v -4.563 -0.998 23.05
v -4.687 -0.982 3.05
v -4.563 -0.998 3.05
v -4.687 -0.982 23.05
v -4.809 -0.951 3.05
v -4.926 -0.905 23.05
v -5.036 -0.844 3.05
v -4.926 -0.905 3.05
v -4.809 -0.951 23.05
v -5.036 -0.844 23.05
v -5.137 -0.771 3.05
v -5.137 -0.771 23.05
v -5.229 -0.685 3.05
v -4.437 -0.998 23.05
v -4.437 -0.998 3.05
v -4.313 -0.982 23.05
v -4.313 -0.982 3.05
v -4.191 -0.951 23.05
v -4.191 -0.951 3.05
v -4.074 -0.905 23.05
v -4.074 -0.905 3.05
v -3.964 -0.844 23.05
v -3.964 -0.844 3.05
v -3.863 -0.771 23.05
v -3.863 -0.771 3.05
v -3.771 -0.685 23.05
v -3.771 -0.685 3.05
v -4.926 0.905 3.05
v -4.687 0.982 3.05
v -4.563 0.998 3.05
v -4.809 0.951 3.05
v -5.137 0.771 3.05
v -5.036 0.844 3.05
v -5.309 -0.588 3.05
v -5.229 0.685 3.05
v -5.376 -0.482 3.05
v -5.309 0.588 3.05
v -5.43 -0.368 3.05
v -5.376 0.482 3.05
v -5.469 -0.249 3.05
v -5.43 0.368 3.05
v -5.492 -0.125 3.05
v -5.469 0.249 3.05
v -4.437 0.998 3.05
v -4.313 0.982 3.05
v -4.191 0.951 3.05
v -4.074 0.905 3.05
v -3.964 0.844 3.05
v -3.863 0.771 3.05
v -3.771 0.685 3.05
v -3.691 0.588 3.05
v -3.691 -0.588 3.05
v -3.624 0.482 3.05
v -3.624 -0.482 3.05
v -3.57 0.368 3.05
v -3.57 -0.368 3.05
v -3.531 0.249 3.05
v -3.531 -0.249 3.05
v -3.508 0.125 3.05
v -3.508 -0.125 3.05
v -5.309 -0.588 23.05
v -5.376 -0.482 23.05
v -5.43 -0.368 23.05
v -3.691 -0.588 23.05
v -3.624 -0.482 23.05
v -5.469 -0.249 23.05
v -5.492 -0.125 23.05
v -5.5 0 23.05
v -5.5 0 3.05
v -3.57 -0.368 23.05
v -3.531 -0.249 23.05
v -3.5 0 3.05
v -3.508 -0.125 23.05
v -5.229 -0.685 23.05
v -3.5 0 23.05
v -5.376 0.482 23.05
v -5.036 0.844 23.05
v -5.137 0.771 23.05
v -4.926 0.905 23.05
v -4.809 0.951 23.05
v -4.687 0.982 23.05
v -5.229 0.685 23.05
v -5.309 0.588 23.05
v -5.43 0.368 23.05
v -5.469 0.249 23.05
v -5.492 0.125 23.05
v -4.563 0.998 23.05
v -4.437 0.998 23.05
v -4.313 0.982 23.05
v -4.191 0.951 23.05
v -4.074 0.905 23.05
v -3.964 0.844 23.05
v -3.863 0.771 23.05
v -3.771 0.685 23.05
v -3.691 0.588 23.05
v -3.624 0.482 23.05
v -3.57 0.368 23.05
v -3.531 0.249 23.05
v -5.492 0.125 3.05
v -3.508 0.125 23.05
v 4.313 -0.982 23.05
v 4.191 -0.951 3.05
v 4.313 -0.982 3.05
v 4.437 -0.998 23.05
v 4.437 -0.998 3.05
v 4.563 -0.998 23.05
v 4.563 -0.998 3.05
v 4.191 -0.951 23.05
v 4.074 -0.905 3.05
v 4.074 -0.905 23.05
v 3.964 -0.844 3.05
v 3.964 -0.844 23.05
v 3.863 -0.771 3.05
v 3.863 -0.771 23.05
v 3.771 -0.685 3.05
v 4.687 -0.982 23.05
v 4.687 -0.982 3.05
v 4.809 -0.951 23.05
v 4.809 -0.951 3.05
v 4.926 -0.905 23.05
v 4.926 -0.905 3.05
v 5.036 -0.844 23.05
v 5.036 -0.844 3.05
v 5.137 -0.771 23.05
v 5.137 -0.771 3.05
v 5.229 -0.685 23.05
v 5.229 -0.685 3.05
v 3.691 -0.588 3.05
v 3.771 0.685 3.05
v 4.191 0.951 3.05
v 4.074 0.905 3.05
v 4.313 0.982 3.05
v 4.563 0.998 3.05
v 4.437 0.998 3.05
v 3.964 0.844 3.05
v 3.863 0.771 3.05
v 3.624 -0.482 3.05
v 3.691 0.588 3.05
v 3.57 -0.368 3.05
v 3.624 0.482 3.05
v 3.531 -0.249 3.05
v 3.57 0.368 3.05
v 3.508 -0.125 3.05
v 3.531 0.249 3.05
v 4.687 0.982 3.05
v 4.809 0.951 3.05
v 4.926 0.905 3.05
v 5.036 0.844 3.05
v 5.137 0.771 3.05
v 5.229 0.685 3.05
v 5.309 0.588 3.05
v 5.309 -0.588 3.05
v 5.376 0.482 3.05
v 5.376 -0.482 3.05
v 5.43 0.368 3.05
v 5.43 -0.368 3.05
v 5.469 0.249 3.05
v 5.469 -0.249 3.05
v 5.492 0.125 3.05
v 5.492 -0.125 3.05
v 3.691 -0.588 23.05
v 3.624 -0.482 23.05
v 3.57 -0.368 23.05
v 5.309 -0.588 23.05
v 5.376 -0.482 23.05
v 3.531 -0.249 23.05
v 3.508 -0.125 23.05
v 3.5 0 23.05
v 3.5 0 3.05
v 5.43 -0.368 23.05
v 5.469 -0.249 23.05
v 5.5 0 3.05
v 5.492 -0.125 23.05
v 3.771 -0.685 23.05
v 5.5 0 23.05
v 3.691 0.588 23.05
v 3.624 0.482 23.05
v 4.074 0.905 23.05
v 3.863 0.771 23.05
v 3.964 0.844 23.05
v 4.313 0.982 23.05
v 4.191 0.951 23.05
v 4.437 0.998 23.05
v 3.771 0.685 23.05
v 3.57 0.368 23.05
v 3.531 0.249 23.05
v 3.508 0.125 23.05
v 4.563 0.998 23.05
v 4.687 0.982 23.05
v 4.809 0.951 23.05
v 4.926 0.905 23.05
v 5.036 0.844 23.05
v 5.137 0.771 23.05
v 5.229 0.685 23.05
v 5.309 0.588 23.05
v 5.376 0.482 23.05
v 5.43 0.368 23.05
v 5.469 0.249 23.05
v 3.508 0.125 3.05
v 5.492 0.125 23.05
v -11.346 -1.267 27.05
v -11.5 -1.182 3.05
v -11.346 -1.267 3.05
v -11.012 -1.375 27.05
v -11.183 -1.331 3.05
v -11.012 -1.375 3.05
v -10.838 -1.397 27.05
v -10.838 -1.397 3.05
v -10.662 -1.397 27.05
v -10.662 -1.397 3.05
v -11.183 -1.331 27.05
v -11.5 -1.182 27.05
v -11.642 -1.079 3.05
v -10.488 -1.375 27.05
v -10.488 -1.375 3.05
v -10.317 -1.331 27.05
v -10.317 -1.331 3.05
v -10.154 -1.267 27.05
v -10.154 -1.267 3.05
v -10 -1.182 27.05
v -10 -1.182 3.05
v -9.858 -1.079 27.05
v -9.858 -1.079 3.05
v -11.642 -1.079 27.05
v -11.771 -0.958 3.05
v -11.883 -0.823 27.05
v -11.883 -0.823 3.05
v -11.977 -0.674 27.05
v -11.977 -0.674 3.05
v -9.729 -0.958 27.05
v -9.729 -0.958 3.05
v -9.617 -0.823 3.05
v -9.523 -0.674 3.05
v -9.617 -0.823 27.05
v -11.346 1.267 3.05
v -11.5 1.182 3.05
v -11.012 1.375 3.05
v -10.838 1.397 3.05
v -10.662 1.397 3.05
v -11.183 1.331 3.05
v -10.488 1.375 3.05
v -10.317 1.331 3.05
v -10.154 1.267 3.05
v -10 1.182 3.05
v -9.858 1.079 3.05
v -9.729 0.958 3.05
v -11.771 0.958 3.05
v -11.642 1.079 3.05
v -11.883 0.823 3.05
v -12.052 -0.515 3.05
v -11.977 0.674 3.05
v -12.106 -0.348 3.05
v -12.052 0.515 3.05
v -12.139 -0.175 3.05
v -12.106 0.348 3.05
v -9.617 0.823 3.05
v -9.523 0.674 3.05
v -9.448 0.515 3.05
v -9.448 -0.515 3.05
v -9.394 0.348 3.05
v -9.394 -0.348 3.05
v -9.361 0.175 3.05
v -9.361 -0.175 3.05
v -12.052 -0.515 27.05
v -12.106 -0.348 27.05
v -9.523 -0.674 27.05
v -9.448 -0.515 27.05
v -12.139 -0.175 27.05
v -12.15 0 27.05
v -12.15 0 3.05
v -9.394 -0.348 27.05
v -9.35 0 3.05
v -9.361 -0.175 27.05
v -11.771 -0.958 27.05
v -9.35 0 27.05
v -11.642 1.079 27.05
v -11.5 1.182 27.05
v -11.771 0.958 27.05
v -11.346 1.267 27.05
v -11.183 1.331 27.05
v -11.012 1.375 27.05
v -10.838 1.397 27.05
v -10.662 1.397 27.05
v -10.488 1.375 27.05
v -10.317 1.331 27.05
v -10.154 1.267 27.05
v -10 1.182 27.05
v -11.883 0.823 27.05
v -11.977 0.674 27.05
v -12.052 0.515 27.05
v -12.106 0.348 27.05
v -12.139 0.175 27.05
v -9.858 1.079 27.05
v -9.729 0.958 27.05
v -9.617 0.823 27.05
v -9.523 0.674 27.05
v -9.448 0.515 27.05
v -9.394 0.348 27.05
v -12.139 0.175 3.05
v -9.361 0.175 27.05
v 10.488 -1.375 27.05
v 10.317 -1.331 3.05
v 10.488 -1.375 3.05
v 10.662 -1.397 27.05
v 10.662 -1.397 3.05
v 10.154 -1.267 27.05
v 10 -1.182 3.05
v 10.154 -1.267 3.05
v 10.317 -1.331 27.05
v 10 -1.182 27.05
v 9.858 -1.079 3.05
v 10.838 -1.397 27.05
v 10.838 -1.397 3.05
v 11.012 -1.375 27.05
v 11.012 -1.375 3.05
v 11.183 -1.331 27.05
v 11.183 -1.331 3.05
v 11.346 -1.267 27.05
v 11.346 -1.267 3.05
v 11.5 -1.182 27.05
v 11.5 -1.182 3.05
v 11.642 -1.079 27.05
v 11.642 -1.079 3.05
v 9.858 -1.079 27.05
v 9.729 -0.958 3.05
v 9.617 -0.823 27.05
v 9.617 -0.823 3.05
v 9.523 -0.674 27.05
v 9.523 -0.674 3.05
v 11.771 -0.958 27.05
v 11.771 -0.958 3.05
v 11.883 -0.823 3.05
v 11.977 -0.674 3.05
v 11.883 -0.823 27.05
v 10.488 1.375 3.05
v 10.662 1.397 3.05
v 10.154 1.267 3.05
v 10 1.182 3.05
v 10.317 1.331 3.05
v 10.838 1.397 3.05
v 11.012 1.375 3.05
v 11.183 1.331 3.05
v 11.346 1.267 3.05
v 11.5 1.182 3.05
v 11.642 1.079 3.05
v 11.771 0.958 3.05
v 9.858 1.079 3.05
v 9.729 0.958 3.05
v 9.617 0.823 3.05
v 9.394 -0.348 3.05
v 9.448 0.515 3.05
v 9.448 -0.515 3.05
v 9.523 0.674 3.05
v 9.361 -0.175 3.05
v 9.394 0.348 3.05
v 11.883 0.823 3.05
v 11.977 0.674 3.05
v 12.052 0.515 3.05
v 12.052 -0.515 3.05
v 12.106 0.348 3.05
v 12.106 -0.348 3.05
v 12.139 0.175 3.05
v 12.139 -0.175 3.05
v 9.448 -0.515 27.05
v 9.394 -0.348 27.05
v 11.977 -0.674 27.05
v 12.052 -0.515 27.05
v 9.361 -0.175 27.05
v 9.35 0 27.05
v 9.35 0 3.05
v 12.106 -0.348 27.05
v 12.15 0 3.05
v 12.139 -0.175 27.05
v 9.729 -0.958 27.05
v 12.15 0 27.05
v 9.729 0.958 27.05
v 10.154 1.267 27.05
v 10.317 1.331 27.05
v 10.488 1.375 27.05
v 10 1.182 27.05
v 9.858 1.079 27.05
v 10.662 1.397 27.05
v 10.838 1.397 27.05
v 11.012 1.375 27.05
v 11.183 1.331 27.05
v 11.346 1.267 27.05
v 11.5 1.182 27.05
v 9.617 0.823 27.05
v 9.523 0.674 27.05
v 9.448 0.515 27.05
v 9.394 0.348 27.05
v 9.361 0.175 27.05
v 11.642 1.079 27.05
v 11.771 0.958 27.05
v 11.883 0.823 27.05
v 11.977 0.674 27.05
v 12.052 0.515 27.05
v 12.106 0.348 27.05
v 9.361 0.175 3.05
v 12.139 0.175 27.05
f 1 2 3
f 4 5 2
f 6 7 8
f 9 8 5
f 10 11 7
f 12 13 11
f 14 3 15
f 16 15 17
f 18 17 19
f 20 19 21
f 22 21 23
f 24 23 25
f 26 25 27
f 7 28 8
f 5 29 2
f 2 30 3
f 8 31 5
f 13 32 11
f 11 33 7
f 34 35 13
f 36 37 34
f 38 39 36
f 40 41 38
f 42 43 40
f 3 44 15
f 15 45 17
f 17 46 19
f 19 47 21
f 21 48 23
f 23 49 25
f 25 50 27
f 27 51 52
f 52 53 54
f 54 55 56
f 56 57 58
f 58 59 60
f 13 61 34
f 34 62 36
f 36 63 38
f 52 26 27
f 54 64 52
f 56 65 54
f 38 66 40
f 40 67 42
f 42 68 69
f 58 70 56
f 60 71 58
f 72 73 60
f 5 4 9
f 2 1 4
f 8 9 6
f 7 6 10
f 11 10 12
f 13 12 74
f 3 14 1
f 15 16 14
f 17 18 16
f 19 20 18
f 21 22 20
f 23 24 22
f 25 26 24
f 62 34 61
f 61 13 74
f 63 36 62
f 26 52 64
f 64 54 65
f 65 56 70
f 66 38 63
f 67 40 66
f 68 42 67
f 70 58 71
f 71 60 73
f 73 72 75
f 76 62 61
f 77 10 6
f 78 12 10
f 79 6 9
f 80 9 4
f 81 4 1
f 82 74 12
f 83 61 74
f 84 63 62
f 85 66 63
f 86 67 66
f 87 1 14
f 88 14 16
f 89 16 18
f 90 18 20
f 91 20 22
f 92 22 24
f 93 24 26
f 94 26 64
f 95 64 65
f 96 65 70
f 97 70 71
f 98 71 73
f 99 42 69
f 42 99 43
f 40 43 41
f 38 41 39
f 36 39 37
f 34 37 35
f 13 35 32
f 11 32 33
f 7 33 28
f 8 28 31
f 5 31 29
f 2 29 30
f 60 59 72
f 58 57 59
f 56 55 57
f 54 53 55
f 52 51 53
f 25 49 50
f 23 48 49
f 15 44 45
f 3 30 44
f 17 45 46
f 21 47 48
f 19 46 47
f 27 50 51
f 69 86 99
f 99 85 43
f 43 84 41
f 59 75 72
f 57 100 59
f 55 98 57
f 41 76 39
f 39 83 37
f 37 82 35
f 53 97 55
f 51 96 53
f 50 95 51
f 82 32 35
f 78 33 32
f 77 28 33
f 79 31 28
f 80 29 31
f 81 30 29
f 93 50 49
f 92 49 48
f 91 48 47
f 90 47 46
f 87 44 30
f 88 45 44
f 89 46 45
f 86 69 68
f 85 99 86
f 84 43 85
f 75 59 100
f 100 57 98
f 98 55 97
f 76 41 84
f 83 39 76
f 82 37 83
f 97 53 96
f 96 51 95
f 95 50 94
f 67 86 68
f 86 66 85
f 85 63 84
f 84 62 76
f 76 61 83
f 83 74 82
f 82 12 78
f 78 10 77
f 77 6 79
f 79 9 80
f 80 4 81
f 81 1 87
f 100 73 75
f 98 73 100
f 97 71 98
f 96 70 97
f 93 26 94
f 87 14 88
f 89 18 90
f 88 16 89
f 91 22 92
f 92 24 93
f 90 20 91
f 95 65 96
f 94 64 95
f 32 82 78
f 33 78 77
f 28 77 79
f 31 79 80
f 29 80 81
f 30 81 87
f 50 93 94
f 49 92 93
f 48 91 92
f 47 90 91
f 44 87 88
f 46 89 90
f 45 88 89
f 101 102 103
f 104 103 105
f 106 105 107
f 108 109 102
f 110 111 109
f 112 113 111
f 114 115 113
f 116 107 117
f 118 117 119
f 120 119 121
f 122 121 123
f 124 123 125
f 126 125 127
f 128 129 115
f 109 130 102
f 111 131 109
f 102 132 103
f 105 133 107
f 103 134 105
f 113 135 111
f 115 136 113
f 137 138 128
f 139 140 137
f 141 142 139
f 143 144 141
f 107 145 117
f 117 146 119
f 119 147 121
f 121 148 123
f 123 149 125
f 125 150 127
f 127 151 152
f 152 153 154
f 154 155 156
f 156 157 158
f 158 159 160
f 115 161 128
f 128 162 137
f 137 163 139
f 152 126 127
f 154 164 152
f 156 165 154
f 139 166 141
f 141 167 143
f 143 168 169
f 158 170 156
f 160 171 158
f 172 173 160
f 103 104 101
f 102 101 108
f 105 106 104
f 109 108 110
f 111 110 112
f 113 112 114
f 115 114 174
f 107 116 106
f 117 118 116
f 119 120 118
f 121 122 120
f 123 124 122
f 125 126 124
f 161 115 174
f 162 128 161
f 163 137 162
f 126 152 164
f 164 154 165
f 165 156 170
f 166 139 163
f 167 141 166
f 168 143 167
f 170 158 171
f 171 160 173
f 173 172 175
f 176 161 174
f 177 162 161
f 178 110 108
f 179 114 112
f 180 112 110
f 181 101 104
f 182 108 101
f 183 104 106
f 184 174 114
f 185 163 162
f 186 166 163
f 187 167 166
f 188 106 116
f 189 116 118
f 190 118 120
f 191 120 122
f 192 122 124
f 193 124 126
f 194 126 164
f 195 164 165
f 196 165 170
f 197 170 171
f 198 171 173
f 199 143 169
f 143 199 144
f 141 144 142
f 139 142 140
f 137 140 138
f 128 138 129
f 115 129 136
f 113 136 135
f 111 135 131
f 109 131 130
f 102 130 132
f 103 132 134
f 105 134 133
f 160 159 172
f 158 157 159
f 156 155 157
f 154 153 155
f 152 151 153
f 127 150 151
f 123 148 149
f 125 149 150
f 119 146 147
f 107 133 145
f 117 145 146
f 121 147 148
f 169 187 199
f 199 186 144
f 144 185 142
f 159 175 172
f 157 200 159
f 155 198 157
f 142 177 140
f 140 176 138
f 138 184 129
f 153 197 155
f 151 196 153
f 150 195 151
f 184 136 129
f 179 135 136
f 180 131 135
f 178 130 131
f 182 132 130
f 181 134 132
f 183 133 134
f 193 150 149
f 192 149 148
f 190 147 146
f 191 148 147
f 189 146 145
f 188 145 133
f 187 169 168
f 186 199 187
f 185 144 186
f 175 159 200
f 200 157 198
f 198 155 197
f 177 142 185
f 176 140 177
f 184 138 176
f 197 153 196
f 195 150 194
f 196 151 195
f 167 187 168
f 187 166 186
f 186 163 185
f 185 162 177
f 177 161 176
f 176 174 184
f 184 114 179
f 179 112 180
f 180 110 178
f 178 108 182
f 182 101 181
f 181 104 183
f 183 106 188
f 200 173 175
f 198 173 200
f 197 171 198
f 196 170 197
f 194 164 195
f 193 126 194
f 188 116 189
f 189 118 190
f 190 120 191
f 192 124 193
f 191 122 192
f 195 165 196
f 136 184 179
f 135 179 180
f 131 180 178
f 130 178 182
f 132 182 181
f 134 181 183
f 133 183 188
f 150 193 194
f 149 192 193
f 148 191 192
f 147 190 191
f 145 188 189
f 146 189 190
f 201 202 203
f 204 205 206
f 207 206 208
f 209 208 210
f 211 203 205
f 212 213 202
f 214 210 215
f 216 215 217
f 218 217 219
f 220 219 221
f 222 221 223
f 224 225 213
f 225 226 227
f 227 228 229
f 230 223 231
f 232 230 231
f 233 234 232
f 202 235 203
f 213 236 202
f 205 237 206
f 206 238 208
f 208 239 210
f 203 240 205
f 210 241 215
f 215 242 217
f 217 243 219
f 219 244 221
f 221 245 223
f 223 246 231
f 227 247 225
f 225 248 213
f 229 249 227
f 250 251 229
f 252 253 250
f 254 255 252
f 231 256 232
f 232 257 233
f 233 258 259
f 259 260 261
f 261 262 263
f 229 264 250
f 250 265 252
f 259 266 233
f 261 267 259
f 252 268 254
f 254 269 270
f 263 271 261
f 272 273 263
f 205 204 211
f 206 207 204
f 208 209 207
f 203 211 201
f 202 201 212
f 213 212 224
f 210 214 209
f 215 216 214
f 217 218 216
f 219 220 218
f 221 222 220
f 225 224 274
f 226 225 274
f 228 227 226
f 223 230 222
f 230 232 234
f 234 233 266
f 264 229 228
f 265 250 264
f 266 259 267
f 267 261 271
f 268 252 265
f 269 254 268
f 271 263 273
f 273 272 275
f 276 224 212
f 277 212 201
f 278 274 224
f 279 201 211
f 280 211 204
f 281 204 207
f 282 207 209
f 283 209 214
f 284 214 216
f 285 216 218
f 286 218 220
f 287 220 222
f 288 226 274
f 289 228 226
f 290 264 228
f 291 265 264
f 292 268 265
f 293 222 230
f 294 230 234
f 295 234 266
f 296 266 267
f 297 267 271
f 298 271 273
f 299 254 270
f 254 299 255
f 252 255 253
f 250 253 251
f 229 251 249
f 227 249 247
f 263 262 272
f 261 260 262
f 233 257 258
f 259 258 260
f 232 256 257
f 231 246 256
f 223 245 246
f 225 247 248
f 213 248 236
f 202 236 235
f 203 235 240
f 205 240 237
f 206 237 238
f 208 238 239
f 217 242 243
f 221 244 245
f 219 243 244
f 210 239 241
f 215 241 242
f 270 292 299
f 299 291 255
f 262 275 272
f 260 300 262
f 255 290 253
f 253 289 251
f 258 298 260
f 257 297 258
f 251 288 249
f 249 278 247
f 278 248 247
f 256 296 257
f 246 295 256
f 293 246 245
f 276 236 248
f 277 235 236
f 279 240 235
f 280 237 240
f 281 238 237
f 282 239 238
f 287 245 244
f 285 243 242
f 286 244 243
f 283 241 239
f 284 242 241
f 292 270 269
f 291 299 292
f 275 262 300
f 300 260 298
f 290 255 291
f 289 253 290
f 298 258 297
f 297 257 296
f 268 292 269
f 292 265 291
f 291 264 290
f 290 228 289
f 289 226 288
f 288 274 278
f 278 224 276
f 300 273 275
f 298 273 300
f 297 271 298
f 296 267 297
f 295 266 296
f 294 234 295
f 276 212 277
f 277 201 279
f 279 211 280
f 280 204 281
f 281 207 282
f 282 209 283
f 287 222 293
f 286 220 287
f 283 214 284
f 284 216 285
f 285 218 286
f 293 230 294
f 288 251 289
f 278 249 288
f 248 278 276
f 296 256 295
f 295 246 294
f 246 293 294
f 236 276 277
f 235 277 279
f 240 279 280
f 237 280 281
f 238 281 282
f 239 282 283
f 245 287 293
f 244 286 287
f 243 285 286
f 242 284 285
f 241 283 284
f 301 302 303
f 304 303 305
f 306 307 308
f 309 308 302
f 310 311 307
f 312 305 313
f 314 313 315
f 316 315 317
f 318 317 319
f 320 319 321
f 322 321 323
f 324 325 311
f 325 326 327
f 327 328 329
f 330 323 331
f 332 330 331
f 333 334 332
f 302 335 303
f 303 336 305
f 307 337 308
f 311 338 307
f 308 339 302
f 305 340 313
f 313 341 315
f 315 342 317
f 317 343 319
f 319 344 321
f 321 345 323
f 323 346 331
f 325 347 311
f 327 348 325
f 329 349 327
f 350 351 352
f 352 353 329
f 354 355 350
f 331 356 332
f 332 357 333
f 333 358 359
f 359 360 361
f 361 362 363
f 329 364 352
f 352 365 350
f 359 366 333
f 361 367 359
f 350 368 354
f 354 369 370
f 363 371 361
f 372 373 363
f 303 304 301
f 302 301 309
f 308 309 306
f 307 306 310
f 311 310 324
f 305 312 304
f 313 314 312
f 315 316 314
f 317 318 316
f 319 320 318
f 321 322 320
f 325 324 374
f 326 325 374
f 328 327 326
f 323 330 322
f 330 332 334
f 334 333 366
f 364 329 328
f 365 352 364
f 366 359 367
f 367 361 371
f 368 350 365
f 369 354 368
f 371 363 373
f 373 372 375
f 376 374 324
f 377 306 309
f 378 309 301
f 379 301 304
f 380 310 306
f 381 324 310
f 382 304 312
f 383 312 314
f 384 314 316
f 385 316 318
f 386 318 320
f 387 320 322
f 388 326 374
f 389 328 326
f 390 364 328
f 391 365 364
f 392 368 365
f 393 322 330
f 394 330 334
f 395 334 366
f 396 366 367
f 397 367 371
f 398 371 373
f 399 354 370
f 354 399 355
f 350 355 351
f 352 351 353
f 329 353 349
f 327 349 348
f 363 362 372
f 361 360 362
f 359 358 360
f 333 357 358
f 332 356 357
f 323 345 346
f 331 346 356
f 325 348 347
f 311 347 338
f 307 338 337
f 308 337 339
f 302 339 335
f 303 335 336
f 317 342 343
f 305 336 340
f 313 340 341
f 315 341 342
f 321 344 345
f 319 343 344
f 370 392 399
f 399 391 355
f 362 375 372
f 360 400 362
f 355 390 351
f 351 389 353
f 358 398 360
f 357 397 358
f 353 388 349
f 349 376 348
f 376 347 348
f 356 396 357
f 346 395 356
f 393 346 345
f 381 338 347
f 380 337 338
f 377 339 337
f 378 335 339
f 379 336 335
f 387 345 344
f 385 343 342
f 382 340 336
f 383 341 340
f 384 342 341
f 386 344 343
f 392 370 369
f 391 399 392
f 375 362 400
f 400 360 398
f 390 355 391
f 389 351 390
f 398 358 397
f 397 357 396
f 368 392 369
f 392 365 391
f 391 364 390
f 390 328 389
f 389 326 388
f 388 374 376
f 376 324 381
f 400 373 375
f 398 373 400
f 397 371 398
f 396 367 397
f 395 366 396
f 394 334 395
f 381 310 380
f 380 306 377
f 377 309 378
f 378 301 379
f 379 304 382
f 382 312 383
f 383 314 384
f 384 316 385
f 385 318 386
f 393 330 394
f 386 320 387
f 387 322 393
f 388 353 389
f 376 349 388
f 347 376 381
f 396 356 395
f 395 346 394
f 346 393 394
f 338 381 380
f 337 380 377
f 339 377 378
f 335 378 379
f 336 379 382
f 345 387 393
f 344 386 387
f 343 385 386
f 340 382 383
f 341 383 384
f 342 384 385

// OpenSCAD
$fn = 50;

difference() {
	union() {
		translate(v = [-4.5, 0, 3.05]) {
			cylinder(h = 20, r = 1);
		}
		translate(v = [4.5, 0, 3.05]) {
			cylinder(h = 20, r = 1);
		}
		translate(v = [-10.75, 0, 3.0500000000000007]) {
			cylinder(h = 24, r = 1.4);
		}
		translate(v = [10.75, 0, 3.0500000000000007]) {
			cylinder(h = 24, r = 1.4);
		}
	}
	union();
}
